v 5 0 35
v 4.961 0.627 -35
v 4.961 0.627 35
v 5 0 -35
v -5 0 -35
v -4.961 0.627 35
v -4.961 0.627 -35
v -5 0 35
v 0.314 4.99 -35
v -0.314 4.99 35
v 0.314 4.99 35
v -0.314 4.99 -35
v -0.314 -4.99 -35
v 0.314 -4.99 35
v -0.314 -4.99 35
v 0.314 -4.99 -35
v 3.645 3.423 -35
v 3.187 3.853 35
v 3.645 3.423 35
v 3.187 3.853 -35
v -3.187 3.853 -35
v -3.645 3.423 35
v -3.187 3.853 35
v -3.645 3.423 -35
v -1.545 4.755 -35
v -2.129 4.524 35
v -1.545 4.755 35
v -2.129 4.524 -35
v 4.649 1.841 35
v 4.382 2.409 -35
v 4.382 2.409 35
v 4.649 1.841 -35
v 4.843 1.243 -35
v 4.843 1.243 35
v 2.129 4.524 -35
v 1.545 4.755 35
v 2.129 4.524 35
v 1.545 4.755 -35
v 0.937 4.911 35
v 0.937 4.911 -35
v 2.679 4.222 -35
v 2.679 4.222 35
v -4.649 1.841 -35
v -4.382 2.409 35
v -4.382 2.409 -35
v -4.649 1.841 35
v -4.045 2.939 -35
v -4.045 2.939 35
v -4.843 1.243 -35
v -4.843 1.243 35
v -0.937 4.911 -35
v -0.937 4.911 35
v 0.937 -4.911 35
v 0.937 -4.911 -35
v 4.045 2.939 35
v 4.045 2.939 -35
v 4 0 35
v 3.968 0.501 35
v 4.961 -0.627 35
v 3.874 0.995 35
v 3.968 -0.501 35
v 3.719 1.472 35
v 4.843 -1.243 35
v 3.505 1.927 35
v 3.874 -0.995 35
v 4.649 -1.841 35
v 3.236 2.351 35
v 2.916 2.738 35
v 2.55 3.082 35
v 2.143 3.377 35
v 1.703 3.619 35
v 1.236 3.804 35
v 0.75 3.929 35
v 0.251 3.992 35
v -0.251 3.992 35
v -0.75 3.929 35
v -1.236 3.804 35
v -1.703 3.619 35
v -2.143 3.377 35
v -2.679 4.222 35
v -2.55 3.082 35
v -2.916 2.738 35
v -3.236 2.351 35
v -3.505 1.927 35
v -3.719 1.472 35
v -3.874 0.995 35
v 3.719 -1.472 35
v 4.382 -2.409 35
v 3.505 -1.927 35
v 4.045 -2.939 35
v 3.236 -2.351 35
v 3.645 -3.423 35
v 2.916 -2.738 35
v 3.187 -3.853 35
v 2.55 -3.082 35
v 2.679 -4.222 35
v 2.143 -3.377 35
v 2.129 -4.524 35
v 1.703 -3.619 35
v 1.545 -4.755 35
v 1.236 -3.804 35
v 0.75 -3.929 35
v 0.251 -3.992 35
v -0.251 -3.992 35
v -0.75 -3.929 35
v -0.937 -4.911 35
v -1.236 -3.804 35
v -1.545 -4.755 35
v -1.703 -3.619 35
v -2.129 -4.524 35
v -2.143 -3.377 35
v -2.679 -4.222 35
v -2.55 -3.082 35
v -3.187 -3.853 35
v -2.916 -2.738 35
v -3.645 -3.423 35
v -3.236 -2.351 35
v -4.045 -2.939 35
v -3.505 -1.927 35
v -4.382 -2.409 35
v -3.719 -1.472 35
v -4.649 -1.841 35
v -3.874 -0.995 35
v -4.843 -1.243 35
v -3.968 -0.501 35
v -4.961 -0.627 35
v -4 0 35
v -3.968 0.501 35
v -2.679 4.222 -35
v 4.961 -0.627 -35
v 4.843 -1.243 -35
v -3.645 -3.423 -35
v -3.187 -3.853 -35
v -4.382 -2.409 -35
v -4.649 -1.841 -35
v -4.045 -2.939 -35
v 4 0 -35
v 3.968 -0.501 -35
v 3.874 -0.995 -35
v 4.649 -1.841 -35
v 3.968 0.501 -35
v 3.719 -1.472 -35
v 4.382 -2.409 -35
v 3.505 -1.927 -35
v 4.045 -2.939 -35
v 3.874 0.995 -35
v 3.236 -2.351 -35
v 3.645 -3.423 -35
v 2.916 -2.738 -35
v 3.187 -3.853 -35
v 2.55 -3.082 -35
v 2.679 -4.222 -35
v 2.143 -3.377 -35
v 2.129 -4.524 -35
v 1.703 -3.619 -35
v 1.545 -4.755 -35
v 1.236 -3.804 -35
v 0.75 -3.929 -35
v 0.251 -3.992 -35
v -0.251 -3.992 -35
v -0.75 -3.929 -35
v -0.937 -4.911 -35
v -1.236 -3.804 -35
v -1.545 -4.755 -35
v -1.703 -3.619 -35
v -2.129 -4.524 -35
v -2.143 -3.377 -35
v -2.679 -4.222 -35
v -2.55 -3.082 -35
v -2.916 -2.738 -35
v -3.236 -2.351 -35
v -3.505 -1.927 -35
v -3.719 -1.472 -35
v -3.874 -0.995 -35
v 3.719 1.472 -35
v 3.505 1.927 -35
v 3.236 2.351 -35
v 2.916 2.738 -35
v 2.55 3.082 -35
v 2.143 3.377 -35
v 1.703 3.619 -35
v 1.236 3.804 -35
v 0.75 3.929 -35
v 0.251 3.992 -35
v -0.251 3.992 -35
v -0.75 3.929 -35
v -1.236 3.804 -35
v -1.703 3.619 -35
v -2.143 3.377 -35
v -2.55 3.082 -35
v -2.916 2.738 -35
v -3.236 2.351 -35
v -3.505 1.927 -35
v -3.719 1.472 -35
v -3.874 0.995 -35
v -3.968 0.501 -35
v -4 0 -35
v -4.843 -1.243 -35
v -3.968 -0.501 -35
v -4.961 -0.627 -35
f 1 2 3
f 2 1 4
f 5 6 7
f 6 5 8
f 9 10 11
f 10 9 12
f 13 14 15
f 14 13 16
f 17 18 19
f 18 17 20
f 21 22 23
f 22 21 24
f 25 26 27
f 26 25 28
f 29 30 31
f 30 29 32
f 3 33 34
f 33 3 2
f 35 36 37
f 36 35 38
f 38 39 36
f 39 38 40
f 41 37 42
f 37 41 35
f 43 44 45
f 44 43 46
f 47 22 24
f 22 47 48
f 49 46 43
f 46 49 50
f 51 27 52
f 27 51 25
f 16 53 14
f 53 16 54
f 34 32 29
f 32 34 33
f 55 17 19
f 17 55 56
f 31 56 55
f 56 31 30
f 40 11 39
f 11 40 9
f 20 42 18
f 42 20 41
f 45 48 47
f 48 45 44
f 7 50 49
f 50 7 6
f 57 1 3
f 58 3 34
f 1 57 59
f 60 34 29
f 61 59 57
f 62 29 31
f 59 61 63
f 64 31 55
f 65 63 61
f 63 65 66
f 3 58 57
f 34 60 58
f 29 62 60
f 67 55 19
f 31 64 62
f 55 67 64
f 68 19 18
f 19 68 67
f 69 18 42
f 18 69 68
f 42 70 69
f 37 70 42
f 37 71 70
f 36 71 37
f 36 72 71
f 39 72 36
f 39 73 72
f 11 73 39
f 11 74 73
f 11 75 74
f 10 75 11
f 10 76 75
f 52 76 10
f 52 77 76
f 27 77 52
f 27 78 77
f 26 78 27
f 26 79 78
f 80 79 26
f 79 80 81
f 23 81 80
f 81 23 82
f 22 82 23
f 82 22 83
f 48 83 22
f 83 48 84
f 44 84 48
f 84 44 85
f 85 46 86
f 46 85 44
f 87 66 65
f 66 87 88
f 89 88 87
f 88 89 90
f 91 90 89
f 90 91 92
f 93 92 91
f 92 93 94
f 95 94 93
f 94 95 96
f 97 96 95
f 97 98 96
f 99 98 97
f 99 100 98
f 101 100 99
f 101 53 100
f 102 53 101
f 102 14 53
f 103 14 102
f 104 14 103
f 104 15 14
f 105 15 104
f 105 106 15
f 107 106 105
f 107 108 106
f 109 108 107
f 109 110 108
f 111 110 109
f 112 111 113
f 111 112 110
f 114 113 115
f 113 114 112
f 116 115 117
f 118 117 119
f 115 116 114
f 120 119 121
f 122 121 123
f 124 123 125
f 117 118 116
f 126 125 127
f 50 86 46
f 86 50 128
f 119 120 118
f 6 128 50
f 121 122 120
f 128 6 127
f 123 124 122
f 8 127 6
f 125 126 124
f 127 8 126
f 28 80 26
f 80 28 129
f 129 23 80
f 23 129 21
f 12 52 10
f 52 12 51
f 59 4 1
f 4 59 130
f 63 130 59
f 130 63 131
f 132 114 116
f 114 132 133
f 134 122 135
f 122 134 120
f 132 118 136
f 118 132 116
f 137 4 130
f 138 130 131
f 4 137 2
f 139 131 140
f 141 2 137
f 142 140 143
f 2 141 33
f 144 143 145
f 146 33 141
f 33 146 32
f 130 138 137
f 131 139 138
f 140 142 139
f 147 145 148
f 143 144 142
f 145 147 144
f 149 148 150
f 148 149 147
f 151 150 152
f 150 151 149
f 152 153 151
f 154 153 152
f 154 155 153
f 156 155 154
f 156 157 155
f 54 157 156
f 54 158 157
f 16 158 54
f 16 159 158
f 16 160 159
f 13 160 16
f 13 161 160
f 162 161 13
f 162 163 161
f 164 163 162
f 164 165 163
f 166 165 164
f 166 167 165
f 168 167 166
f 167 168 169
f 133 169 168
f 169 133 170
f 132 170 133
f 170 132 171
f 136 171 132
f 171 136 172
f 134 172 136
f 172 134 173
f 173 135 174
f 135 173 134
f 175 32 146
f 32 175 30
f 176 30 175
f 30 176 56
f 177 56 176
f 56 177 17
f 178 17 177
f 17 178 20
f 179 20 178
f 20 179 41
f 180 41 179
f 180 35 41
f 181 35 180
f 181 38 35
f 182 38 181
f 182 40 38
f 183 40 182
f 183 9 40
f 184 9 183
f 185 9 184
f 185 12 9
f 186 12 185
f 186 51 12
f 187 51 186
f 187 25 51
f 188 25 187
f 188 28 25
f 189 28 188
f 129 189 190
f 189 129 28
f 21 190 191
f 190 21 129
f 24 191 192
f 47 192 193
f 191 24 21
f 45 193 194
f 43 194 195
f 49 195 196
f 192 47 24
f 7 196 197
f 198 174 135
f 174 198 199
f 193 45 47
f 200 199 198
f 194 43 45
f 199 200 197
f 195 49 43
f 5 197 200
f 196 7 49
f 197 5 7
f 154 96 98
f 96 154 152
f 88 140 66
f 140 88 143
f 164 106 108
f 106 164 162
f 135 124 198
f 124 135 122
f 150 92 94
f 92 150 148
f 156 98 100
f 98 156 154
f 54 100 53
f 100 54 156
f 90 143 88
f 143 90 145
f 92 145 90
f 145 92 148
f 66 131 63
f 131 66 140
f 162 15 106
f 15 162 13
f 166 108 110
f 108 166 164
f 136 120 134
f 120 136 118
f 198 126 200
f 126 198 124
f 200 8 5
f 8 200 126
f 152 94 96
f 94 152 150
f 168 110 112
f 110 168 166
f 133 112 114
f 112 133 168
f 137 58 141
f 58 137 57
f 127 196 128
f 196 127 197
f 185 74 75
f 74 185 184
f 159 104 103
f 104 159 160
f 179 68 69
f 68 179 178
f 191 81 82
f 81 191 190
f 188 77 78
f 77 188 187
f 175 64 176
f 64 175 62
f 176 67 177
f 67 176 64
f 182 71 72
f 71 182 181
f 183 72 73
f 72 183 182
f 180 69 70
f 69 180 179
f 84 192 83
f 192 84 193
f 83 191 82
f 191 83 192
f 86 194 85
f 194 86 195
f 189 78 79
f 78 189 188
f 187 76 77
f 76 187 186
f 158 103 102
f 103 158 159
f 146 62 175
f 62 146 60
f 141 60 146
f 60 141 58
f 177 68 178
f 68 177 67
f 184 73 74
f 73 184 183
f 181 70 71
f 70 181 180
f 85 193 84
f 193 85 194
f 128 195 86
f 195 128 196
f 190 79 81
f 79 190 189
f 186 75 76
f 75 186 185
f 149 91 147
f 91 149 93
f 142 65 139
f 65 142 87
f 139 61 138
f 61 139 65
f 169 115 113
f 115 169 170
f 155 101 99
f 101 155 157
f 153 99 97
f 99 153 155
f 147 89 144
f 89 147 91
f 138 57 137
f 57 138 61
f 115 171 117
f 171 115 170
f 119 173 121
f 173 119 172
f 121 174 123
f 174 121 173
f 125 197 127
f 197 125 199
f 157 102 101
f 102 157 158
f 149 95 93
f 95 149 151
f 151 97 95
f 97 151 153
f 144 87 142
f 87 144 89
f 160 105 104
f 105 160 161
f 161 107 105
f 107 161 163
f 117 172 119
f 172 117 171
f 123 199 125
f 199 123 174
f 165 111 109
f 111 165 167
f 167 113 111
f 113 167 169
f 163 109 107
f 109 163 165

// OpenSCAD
$fn = 50;


difference() {
	union() {
		translate(v = [0, 0, -35.0000000000]) {
			cylinder(h = 70, r = 5.0000000000);
		}
	}
	union() {
		translate(v = [0, 0, -100.0000000000]) {
			cylinder(h = 200, r = 4);
		}
	}
}
